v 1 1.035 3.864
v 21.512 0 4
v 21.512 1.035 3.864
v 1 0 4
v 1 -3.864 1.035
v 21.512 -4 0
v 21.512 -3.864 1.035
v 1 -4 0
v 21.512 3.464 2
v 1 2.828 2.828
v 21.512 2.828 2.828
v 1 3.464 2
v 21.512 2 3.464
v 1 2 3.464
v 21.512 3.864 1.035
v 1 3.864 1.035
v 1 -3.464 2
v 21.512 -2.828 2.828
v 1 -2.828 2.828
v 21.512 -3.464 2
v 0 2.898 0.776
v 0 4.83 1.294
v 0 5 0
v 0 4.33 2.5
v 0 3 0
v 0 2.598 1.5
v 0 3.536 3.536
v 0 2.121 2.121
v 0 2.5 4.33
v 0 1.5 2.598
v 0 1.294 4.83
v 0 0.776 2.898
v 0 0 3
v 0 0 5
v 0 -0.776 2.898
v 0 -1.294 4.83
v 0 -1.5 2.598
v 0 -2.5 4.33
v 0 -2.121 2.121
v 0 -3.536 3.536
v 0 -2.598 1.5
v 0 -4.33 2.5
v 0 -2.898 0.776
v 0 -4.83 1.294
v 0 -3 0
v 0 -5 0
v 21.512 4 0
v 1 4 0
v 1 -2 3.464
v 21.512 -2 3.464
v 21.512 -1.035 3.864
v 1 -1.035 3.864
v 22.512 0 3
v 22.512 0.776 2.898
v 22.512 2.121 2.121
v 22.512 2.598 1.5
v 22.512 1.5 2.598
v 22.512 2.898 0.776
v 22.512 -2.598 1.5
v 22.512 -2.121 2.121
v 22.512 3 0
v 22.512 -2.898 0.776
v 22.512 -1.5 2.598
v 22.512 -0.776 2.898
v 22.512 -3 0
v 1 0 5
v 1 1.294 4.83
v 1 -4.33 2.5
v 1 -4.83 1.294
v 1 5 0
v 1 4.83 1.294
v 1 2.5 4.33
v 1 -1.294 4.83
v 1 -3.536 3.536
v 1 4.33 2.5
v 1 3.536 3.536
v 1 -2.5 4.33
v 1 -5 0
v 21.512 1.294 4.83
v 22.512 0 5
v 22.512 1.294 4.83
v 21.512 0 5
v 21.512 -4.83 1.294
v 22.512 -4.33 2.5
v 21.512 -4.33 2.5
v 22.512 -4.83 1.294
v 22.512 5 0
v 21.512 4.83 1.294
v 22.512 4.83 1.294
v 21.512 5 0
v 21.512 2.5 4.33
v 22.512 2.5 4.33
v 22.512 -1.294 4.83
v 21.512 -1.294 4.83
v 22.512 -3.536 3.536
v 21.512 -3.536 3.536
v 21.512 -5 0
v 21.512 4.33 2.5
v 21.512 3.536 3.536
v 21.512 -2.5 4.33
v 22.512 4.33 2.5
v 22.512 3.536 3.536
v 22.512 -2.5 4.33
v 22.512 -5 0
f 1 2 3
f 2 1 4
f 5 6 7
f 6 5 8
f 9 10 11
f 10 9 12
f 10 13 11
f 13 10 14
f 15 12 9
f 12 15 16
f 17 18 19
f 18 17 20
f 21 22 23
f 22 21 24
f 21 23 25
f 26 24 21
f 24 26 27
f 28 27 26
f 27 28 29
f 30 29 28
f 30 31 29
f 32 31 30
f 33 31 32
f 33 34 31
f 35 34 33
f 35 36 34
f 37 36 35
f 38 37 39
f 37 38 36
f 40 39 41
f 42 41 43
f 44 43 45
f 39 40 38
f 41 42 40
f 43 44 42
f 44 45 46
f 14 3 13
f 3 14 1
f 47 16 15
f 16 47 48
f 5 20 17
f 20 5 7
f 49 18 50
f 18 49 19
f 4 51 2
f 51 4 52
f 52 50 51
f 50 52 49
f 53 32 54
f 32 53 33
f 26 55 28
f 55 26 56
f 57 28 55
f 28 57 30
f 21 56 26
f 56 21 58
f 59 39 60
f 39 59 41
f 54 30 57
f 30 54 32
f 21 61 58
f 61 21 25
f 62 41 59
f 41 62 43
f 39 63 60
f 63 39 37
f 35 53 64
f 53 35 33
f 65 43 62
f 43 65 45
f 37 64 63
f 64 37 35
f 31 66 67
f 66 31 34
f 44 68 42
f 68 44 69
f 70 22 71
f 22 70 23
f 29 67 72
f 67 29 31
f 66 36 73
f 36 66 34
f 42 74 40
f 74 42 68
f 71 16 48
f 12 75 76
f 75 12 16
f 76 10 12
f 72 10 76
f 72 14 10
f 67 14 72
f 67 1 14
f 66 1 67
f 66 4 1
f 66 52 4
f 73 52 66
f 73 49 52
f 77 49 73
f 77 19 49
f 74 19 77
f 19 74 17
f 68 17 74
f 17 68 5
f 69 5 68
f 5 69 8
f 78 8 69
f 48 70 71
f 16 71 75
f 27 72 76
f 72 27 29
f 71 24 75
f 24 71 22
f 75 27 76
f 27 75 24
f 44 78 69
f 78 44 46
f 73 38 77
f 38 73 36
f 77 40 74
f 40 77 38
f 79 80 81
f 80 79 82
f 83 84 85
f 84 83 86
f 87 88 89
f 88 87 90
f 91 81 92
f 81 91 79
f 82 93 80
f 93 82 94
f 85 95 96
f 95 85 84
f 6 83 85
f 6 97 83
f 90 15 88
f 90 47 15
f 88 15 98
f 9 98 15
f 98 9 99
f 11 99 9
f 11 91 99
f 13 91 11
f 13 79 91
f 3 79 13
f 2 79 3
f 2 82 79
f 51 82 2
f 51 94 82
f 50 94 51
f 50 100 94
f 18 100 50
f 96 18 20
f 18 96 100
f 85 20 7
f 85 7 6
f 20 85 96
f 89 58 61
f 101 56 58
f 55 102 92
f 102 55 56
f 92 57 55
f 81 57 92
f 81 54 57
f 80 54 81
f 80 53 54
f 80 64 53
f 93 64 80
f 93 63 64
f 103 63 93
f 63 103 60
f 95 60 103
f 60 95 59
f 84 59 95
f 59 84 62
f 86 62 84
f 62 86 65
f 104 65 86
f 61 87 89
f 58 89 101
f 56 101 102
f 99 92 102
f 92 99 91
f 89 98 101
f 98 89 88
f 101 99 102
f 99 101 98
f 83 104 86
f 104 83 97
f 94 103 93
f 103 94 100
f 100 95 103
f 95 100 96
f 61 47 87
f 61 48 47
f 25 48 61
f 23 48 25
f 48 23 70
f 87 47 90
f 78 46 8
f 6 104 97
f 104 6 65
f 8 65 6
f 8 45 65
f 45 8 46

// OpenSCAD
// file: ../build_environments.scad
// build_environments.scad: modules to build level sections
//

module pool(diameter=10.0, wall_height=2.0, step_width=3.0, connections=[])
{
    difference() {
        union() {
        difference() {
            cylinder(h=0.5,r1=diameter+step_width,r2=diameter+step_width,$fn=48);
            translate([0,0,-0.1])
                cylinder(h=0.7,r1=diameter,r2=diameter,$fn=48);
        }
        difference() {
            cylinder(h=wall_height,r1=diameter+step_width+1.0,r2=diameter+step_width+1.0,$fn=48);
            translate([0,0,-0.1])
                cylinder(h=wall_height+0.2,r1=diameter+step_width,r2=diameter+step_width,$fn=48);
        }
        }
    
        for (c = connections)
        {
            rotate([0,90,0]) {
                angle = atan2(c[1],c[0]);
                rotate([-angle,0,0]) {
                    cylinder(h=diameter+5.0,r1=c[2],r2=c[2],$fn=48);
                }
            }
        }
    }
}

module straight(length=10.0, width=2.0, dy1=0.0, dy2=0.0, dz=0.0)
{
    dims = [0, 0, 0, 0, 0, (dz/length)];
    matrix = [
        [ 1, dims[0], dims[1], 0 ],
        [ dims[2], 1, dims[4], 0 ],
        [ dims[5], dims[3], 1, 0 ],
        [ 0, 0, 0, 1 ]
    ];
    multmatrix(matrix)
    difference() {
        translate([dy1,0,0])
        union() {
            rotate([0,90,0]) {
                difference() {
                    cylinder(h=(length-dy1-dy2),r1=width+1.0,r2=width+1.0,$fn=24);
                    translate([0,0,-0.1])
                        cylinder(h=(length-dy1-dy2+0.2),r1=width,r2=width,$fn=24);
                }
                difference() {
                    cylinder(h=1.0,r1=width+2.0,r2=width+2.0,$fn=24);
                    translate([0,0,-0.1])
                        cylinder(h=1.2,r1=width,r2=width,$fn=24);
                }
                translate([0,0,(length-dy1-dy2)-1.0]) {
                    difference() {
                        cylinder(h=1.0,r1=width+2.0,r2=width+2.0,$fn=24);
                        translate([0,0,-0.1])
                            cylinder(h=1.2,r1=width,r2=width,$fn=24);
                    }
                }
            }
        }
        translate([0,0,-(2*width+4.0)/2])
            cube([3*length,3*length,2*width+4.0],center=true);
    }
}

module curve(p0=[0,0], center=[0,0], dir=1, angle=0.0, width=2.0)
{
    radius = sqrt((p0[0]-center[0])*(p0[0]-center[0]) + (p0[1]-center[1])*(p0[1]-center[1]));
    if (dir == 0) {
        difference() {
            rotate([0,0,-90])
            difference() {
                rotate_extrude(angle = angle, convexity = 10, $fn=32)
                    translate([radius, 0, 0])
                        circle(r = width+1.0,$fn=24);
                rotate([0,0,-1.0])
                    rotate_extrude(angle = angle+2.0, convexity = 10, $fn=32)
                        translate([radius, 0, 0])
                            circle(r = width,$fn=24);
            }
            translate([0,0,-(2*width+4.0)/2])
                cube([5*radius,5*radius,2*width+4.0],center=true);
        }
    }
    else {
        difference() {
            rotate([0,0,90])
            difference() {
                rotate_extrude(angle = -angle, convexity = 10, $fn=32)
                    translate([radius, 0, 0])
                        circle(r = width+1.0,$fn=24);
                rotate([0,0,1.0])
                    rotate_extrude(angle = -angle-2.0, convexity = 10, $fn=32)
                        translate([radius, 0, 0])
                            circle(r = width,$fn=24);
            }
            translate([0,0,-(2*width+4.0)/2])
                cube([5*radius,5*radius,2*width+4.0],center=true);
        }
    }

}

// test pool
//pool(diameter=12.0000, wall_height=3.0000, step_width=3.0000, connections=[[0.0000,-26.0000,2.0000], [23.6074,0.0000,2.0000]]);

// test straight, slope
//straight(length=26.0000, width=2.0000, dy1=11.8322, dy2=6.7082, dz=0.0000);
//straight(length=29.1549, width=12.0000, dy1=0.0000, dy2=0.0000, dz=-15.0000);

// test curve
//curve(p0=[23.6074, 0.0000], center=[23.6074, 5.0000], dir=0, angle=60.1011, width=2.0000);
//curve(p0=[33.6426, 12.4219], center=[37.9771, 9.9295], dir=1, angle=120.4627, width=2.0000);
// main file
use <../build_environments.scad>;
straight(length=22.5124, width=3.0000, dy1=0.0000, dy2=0.0000, dz=0.0000);
